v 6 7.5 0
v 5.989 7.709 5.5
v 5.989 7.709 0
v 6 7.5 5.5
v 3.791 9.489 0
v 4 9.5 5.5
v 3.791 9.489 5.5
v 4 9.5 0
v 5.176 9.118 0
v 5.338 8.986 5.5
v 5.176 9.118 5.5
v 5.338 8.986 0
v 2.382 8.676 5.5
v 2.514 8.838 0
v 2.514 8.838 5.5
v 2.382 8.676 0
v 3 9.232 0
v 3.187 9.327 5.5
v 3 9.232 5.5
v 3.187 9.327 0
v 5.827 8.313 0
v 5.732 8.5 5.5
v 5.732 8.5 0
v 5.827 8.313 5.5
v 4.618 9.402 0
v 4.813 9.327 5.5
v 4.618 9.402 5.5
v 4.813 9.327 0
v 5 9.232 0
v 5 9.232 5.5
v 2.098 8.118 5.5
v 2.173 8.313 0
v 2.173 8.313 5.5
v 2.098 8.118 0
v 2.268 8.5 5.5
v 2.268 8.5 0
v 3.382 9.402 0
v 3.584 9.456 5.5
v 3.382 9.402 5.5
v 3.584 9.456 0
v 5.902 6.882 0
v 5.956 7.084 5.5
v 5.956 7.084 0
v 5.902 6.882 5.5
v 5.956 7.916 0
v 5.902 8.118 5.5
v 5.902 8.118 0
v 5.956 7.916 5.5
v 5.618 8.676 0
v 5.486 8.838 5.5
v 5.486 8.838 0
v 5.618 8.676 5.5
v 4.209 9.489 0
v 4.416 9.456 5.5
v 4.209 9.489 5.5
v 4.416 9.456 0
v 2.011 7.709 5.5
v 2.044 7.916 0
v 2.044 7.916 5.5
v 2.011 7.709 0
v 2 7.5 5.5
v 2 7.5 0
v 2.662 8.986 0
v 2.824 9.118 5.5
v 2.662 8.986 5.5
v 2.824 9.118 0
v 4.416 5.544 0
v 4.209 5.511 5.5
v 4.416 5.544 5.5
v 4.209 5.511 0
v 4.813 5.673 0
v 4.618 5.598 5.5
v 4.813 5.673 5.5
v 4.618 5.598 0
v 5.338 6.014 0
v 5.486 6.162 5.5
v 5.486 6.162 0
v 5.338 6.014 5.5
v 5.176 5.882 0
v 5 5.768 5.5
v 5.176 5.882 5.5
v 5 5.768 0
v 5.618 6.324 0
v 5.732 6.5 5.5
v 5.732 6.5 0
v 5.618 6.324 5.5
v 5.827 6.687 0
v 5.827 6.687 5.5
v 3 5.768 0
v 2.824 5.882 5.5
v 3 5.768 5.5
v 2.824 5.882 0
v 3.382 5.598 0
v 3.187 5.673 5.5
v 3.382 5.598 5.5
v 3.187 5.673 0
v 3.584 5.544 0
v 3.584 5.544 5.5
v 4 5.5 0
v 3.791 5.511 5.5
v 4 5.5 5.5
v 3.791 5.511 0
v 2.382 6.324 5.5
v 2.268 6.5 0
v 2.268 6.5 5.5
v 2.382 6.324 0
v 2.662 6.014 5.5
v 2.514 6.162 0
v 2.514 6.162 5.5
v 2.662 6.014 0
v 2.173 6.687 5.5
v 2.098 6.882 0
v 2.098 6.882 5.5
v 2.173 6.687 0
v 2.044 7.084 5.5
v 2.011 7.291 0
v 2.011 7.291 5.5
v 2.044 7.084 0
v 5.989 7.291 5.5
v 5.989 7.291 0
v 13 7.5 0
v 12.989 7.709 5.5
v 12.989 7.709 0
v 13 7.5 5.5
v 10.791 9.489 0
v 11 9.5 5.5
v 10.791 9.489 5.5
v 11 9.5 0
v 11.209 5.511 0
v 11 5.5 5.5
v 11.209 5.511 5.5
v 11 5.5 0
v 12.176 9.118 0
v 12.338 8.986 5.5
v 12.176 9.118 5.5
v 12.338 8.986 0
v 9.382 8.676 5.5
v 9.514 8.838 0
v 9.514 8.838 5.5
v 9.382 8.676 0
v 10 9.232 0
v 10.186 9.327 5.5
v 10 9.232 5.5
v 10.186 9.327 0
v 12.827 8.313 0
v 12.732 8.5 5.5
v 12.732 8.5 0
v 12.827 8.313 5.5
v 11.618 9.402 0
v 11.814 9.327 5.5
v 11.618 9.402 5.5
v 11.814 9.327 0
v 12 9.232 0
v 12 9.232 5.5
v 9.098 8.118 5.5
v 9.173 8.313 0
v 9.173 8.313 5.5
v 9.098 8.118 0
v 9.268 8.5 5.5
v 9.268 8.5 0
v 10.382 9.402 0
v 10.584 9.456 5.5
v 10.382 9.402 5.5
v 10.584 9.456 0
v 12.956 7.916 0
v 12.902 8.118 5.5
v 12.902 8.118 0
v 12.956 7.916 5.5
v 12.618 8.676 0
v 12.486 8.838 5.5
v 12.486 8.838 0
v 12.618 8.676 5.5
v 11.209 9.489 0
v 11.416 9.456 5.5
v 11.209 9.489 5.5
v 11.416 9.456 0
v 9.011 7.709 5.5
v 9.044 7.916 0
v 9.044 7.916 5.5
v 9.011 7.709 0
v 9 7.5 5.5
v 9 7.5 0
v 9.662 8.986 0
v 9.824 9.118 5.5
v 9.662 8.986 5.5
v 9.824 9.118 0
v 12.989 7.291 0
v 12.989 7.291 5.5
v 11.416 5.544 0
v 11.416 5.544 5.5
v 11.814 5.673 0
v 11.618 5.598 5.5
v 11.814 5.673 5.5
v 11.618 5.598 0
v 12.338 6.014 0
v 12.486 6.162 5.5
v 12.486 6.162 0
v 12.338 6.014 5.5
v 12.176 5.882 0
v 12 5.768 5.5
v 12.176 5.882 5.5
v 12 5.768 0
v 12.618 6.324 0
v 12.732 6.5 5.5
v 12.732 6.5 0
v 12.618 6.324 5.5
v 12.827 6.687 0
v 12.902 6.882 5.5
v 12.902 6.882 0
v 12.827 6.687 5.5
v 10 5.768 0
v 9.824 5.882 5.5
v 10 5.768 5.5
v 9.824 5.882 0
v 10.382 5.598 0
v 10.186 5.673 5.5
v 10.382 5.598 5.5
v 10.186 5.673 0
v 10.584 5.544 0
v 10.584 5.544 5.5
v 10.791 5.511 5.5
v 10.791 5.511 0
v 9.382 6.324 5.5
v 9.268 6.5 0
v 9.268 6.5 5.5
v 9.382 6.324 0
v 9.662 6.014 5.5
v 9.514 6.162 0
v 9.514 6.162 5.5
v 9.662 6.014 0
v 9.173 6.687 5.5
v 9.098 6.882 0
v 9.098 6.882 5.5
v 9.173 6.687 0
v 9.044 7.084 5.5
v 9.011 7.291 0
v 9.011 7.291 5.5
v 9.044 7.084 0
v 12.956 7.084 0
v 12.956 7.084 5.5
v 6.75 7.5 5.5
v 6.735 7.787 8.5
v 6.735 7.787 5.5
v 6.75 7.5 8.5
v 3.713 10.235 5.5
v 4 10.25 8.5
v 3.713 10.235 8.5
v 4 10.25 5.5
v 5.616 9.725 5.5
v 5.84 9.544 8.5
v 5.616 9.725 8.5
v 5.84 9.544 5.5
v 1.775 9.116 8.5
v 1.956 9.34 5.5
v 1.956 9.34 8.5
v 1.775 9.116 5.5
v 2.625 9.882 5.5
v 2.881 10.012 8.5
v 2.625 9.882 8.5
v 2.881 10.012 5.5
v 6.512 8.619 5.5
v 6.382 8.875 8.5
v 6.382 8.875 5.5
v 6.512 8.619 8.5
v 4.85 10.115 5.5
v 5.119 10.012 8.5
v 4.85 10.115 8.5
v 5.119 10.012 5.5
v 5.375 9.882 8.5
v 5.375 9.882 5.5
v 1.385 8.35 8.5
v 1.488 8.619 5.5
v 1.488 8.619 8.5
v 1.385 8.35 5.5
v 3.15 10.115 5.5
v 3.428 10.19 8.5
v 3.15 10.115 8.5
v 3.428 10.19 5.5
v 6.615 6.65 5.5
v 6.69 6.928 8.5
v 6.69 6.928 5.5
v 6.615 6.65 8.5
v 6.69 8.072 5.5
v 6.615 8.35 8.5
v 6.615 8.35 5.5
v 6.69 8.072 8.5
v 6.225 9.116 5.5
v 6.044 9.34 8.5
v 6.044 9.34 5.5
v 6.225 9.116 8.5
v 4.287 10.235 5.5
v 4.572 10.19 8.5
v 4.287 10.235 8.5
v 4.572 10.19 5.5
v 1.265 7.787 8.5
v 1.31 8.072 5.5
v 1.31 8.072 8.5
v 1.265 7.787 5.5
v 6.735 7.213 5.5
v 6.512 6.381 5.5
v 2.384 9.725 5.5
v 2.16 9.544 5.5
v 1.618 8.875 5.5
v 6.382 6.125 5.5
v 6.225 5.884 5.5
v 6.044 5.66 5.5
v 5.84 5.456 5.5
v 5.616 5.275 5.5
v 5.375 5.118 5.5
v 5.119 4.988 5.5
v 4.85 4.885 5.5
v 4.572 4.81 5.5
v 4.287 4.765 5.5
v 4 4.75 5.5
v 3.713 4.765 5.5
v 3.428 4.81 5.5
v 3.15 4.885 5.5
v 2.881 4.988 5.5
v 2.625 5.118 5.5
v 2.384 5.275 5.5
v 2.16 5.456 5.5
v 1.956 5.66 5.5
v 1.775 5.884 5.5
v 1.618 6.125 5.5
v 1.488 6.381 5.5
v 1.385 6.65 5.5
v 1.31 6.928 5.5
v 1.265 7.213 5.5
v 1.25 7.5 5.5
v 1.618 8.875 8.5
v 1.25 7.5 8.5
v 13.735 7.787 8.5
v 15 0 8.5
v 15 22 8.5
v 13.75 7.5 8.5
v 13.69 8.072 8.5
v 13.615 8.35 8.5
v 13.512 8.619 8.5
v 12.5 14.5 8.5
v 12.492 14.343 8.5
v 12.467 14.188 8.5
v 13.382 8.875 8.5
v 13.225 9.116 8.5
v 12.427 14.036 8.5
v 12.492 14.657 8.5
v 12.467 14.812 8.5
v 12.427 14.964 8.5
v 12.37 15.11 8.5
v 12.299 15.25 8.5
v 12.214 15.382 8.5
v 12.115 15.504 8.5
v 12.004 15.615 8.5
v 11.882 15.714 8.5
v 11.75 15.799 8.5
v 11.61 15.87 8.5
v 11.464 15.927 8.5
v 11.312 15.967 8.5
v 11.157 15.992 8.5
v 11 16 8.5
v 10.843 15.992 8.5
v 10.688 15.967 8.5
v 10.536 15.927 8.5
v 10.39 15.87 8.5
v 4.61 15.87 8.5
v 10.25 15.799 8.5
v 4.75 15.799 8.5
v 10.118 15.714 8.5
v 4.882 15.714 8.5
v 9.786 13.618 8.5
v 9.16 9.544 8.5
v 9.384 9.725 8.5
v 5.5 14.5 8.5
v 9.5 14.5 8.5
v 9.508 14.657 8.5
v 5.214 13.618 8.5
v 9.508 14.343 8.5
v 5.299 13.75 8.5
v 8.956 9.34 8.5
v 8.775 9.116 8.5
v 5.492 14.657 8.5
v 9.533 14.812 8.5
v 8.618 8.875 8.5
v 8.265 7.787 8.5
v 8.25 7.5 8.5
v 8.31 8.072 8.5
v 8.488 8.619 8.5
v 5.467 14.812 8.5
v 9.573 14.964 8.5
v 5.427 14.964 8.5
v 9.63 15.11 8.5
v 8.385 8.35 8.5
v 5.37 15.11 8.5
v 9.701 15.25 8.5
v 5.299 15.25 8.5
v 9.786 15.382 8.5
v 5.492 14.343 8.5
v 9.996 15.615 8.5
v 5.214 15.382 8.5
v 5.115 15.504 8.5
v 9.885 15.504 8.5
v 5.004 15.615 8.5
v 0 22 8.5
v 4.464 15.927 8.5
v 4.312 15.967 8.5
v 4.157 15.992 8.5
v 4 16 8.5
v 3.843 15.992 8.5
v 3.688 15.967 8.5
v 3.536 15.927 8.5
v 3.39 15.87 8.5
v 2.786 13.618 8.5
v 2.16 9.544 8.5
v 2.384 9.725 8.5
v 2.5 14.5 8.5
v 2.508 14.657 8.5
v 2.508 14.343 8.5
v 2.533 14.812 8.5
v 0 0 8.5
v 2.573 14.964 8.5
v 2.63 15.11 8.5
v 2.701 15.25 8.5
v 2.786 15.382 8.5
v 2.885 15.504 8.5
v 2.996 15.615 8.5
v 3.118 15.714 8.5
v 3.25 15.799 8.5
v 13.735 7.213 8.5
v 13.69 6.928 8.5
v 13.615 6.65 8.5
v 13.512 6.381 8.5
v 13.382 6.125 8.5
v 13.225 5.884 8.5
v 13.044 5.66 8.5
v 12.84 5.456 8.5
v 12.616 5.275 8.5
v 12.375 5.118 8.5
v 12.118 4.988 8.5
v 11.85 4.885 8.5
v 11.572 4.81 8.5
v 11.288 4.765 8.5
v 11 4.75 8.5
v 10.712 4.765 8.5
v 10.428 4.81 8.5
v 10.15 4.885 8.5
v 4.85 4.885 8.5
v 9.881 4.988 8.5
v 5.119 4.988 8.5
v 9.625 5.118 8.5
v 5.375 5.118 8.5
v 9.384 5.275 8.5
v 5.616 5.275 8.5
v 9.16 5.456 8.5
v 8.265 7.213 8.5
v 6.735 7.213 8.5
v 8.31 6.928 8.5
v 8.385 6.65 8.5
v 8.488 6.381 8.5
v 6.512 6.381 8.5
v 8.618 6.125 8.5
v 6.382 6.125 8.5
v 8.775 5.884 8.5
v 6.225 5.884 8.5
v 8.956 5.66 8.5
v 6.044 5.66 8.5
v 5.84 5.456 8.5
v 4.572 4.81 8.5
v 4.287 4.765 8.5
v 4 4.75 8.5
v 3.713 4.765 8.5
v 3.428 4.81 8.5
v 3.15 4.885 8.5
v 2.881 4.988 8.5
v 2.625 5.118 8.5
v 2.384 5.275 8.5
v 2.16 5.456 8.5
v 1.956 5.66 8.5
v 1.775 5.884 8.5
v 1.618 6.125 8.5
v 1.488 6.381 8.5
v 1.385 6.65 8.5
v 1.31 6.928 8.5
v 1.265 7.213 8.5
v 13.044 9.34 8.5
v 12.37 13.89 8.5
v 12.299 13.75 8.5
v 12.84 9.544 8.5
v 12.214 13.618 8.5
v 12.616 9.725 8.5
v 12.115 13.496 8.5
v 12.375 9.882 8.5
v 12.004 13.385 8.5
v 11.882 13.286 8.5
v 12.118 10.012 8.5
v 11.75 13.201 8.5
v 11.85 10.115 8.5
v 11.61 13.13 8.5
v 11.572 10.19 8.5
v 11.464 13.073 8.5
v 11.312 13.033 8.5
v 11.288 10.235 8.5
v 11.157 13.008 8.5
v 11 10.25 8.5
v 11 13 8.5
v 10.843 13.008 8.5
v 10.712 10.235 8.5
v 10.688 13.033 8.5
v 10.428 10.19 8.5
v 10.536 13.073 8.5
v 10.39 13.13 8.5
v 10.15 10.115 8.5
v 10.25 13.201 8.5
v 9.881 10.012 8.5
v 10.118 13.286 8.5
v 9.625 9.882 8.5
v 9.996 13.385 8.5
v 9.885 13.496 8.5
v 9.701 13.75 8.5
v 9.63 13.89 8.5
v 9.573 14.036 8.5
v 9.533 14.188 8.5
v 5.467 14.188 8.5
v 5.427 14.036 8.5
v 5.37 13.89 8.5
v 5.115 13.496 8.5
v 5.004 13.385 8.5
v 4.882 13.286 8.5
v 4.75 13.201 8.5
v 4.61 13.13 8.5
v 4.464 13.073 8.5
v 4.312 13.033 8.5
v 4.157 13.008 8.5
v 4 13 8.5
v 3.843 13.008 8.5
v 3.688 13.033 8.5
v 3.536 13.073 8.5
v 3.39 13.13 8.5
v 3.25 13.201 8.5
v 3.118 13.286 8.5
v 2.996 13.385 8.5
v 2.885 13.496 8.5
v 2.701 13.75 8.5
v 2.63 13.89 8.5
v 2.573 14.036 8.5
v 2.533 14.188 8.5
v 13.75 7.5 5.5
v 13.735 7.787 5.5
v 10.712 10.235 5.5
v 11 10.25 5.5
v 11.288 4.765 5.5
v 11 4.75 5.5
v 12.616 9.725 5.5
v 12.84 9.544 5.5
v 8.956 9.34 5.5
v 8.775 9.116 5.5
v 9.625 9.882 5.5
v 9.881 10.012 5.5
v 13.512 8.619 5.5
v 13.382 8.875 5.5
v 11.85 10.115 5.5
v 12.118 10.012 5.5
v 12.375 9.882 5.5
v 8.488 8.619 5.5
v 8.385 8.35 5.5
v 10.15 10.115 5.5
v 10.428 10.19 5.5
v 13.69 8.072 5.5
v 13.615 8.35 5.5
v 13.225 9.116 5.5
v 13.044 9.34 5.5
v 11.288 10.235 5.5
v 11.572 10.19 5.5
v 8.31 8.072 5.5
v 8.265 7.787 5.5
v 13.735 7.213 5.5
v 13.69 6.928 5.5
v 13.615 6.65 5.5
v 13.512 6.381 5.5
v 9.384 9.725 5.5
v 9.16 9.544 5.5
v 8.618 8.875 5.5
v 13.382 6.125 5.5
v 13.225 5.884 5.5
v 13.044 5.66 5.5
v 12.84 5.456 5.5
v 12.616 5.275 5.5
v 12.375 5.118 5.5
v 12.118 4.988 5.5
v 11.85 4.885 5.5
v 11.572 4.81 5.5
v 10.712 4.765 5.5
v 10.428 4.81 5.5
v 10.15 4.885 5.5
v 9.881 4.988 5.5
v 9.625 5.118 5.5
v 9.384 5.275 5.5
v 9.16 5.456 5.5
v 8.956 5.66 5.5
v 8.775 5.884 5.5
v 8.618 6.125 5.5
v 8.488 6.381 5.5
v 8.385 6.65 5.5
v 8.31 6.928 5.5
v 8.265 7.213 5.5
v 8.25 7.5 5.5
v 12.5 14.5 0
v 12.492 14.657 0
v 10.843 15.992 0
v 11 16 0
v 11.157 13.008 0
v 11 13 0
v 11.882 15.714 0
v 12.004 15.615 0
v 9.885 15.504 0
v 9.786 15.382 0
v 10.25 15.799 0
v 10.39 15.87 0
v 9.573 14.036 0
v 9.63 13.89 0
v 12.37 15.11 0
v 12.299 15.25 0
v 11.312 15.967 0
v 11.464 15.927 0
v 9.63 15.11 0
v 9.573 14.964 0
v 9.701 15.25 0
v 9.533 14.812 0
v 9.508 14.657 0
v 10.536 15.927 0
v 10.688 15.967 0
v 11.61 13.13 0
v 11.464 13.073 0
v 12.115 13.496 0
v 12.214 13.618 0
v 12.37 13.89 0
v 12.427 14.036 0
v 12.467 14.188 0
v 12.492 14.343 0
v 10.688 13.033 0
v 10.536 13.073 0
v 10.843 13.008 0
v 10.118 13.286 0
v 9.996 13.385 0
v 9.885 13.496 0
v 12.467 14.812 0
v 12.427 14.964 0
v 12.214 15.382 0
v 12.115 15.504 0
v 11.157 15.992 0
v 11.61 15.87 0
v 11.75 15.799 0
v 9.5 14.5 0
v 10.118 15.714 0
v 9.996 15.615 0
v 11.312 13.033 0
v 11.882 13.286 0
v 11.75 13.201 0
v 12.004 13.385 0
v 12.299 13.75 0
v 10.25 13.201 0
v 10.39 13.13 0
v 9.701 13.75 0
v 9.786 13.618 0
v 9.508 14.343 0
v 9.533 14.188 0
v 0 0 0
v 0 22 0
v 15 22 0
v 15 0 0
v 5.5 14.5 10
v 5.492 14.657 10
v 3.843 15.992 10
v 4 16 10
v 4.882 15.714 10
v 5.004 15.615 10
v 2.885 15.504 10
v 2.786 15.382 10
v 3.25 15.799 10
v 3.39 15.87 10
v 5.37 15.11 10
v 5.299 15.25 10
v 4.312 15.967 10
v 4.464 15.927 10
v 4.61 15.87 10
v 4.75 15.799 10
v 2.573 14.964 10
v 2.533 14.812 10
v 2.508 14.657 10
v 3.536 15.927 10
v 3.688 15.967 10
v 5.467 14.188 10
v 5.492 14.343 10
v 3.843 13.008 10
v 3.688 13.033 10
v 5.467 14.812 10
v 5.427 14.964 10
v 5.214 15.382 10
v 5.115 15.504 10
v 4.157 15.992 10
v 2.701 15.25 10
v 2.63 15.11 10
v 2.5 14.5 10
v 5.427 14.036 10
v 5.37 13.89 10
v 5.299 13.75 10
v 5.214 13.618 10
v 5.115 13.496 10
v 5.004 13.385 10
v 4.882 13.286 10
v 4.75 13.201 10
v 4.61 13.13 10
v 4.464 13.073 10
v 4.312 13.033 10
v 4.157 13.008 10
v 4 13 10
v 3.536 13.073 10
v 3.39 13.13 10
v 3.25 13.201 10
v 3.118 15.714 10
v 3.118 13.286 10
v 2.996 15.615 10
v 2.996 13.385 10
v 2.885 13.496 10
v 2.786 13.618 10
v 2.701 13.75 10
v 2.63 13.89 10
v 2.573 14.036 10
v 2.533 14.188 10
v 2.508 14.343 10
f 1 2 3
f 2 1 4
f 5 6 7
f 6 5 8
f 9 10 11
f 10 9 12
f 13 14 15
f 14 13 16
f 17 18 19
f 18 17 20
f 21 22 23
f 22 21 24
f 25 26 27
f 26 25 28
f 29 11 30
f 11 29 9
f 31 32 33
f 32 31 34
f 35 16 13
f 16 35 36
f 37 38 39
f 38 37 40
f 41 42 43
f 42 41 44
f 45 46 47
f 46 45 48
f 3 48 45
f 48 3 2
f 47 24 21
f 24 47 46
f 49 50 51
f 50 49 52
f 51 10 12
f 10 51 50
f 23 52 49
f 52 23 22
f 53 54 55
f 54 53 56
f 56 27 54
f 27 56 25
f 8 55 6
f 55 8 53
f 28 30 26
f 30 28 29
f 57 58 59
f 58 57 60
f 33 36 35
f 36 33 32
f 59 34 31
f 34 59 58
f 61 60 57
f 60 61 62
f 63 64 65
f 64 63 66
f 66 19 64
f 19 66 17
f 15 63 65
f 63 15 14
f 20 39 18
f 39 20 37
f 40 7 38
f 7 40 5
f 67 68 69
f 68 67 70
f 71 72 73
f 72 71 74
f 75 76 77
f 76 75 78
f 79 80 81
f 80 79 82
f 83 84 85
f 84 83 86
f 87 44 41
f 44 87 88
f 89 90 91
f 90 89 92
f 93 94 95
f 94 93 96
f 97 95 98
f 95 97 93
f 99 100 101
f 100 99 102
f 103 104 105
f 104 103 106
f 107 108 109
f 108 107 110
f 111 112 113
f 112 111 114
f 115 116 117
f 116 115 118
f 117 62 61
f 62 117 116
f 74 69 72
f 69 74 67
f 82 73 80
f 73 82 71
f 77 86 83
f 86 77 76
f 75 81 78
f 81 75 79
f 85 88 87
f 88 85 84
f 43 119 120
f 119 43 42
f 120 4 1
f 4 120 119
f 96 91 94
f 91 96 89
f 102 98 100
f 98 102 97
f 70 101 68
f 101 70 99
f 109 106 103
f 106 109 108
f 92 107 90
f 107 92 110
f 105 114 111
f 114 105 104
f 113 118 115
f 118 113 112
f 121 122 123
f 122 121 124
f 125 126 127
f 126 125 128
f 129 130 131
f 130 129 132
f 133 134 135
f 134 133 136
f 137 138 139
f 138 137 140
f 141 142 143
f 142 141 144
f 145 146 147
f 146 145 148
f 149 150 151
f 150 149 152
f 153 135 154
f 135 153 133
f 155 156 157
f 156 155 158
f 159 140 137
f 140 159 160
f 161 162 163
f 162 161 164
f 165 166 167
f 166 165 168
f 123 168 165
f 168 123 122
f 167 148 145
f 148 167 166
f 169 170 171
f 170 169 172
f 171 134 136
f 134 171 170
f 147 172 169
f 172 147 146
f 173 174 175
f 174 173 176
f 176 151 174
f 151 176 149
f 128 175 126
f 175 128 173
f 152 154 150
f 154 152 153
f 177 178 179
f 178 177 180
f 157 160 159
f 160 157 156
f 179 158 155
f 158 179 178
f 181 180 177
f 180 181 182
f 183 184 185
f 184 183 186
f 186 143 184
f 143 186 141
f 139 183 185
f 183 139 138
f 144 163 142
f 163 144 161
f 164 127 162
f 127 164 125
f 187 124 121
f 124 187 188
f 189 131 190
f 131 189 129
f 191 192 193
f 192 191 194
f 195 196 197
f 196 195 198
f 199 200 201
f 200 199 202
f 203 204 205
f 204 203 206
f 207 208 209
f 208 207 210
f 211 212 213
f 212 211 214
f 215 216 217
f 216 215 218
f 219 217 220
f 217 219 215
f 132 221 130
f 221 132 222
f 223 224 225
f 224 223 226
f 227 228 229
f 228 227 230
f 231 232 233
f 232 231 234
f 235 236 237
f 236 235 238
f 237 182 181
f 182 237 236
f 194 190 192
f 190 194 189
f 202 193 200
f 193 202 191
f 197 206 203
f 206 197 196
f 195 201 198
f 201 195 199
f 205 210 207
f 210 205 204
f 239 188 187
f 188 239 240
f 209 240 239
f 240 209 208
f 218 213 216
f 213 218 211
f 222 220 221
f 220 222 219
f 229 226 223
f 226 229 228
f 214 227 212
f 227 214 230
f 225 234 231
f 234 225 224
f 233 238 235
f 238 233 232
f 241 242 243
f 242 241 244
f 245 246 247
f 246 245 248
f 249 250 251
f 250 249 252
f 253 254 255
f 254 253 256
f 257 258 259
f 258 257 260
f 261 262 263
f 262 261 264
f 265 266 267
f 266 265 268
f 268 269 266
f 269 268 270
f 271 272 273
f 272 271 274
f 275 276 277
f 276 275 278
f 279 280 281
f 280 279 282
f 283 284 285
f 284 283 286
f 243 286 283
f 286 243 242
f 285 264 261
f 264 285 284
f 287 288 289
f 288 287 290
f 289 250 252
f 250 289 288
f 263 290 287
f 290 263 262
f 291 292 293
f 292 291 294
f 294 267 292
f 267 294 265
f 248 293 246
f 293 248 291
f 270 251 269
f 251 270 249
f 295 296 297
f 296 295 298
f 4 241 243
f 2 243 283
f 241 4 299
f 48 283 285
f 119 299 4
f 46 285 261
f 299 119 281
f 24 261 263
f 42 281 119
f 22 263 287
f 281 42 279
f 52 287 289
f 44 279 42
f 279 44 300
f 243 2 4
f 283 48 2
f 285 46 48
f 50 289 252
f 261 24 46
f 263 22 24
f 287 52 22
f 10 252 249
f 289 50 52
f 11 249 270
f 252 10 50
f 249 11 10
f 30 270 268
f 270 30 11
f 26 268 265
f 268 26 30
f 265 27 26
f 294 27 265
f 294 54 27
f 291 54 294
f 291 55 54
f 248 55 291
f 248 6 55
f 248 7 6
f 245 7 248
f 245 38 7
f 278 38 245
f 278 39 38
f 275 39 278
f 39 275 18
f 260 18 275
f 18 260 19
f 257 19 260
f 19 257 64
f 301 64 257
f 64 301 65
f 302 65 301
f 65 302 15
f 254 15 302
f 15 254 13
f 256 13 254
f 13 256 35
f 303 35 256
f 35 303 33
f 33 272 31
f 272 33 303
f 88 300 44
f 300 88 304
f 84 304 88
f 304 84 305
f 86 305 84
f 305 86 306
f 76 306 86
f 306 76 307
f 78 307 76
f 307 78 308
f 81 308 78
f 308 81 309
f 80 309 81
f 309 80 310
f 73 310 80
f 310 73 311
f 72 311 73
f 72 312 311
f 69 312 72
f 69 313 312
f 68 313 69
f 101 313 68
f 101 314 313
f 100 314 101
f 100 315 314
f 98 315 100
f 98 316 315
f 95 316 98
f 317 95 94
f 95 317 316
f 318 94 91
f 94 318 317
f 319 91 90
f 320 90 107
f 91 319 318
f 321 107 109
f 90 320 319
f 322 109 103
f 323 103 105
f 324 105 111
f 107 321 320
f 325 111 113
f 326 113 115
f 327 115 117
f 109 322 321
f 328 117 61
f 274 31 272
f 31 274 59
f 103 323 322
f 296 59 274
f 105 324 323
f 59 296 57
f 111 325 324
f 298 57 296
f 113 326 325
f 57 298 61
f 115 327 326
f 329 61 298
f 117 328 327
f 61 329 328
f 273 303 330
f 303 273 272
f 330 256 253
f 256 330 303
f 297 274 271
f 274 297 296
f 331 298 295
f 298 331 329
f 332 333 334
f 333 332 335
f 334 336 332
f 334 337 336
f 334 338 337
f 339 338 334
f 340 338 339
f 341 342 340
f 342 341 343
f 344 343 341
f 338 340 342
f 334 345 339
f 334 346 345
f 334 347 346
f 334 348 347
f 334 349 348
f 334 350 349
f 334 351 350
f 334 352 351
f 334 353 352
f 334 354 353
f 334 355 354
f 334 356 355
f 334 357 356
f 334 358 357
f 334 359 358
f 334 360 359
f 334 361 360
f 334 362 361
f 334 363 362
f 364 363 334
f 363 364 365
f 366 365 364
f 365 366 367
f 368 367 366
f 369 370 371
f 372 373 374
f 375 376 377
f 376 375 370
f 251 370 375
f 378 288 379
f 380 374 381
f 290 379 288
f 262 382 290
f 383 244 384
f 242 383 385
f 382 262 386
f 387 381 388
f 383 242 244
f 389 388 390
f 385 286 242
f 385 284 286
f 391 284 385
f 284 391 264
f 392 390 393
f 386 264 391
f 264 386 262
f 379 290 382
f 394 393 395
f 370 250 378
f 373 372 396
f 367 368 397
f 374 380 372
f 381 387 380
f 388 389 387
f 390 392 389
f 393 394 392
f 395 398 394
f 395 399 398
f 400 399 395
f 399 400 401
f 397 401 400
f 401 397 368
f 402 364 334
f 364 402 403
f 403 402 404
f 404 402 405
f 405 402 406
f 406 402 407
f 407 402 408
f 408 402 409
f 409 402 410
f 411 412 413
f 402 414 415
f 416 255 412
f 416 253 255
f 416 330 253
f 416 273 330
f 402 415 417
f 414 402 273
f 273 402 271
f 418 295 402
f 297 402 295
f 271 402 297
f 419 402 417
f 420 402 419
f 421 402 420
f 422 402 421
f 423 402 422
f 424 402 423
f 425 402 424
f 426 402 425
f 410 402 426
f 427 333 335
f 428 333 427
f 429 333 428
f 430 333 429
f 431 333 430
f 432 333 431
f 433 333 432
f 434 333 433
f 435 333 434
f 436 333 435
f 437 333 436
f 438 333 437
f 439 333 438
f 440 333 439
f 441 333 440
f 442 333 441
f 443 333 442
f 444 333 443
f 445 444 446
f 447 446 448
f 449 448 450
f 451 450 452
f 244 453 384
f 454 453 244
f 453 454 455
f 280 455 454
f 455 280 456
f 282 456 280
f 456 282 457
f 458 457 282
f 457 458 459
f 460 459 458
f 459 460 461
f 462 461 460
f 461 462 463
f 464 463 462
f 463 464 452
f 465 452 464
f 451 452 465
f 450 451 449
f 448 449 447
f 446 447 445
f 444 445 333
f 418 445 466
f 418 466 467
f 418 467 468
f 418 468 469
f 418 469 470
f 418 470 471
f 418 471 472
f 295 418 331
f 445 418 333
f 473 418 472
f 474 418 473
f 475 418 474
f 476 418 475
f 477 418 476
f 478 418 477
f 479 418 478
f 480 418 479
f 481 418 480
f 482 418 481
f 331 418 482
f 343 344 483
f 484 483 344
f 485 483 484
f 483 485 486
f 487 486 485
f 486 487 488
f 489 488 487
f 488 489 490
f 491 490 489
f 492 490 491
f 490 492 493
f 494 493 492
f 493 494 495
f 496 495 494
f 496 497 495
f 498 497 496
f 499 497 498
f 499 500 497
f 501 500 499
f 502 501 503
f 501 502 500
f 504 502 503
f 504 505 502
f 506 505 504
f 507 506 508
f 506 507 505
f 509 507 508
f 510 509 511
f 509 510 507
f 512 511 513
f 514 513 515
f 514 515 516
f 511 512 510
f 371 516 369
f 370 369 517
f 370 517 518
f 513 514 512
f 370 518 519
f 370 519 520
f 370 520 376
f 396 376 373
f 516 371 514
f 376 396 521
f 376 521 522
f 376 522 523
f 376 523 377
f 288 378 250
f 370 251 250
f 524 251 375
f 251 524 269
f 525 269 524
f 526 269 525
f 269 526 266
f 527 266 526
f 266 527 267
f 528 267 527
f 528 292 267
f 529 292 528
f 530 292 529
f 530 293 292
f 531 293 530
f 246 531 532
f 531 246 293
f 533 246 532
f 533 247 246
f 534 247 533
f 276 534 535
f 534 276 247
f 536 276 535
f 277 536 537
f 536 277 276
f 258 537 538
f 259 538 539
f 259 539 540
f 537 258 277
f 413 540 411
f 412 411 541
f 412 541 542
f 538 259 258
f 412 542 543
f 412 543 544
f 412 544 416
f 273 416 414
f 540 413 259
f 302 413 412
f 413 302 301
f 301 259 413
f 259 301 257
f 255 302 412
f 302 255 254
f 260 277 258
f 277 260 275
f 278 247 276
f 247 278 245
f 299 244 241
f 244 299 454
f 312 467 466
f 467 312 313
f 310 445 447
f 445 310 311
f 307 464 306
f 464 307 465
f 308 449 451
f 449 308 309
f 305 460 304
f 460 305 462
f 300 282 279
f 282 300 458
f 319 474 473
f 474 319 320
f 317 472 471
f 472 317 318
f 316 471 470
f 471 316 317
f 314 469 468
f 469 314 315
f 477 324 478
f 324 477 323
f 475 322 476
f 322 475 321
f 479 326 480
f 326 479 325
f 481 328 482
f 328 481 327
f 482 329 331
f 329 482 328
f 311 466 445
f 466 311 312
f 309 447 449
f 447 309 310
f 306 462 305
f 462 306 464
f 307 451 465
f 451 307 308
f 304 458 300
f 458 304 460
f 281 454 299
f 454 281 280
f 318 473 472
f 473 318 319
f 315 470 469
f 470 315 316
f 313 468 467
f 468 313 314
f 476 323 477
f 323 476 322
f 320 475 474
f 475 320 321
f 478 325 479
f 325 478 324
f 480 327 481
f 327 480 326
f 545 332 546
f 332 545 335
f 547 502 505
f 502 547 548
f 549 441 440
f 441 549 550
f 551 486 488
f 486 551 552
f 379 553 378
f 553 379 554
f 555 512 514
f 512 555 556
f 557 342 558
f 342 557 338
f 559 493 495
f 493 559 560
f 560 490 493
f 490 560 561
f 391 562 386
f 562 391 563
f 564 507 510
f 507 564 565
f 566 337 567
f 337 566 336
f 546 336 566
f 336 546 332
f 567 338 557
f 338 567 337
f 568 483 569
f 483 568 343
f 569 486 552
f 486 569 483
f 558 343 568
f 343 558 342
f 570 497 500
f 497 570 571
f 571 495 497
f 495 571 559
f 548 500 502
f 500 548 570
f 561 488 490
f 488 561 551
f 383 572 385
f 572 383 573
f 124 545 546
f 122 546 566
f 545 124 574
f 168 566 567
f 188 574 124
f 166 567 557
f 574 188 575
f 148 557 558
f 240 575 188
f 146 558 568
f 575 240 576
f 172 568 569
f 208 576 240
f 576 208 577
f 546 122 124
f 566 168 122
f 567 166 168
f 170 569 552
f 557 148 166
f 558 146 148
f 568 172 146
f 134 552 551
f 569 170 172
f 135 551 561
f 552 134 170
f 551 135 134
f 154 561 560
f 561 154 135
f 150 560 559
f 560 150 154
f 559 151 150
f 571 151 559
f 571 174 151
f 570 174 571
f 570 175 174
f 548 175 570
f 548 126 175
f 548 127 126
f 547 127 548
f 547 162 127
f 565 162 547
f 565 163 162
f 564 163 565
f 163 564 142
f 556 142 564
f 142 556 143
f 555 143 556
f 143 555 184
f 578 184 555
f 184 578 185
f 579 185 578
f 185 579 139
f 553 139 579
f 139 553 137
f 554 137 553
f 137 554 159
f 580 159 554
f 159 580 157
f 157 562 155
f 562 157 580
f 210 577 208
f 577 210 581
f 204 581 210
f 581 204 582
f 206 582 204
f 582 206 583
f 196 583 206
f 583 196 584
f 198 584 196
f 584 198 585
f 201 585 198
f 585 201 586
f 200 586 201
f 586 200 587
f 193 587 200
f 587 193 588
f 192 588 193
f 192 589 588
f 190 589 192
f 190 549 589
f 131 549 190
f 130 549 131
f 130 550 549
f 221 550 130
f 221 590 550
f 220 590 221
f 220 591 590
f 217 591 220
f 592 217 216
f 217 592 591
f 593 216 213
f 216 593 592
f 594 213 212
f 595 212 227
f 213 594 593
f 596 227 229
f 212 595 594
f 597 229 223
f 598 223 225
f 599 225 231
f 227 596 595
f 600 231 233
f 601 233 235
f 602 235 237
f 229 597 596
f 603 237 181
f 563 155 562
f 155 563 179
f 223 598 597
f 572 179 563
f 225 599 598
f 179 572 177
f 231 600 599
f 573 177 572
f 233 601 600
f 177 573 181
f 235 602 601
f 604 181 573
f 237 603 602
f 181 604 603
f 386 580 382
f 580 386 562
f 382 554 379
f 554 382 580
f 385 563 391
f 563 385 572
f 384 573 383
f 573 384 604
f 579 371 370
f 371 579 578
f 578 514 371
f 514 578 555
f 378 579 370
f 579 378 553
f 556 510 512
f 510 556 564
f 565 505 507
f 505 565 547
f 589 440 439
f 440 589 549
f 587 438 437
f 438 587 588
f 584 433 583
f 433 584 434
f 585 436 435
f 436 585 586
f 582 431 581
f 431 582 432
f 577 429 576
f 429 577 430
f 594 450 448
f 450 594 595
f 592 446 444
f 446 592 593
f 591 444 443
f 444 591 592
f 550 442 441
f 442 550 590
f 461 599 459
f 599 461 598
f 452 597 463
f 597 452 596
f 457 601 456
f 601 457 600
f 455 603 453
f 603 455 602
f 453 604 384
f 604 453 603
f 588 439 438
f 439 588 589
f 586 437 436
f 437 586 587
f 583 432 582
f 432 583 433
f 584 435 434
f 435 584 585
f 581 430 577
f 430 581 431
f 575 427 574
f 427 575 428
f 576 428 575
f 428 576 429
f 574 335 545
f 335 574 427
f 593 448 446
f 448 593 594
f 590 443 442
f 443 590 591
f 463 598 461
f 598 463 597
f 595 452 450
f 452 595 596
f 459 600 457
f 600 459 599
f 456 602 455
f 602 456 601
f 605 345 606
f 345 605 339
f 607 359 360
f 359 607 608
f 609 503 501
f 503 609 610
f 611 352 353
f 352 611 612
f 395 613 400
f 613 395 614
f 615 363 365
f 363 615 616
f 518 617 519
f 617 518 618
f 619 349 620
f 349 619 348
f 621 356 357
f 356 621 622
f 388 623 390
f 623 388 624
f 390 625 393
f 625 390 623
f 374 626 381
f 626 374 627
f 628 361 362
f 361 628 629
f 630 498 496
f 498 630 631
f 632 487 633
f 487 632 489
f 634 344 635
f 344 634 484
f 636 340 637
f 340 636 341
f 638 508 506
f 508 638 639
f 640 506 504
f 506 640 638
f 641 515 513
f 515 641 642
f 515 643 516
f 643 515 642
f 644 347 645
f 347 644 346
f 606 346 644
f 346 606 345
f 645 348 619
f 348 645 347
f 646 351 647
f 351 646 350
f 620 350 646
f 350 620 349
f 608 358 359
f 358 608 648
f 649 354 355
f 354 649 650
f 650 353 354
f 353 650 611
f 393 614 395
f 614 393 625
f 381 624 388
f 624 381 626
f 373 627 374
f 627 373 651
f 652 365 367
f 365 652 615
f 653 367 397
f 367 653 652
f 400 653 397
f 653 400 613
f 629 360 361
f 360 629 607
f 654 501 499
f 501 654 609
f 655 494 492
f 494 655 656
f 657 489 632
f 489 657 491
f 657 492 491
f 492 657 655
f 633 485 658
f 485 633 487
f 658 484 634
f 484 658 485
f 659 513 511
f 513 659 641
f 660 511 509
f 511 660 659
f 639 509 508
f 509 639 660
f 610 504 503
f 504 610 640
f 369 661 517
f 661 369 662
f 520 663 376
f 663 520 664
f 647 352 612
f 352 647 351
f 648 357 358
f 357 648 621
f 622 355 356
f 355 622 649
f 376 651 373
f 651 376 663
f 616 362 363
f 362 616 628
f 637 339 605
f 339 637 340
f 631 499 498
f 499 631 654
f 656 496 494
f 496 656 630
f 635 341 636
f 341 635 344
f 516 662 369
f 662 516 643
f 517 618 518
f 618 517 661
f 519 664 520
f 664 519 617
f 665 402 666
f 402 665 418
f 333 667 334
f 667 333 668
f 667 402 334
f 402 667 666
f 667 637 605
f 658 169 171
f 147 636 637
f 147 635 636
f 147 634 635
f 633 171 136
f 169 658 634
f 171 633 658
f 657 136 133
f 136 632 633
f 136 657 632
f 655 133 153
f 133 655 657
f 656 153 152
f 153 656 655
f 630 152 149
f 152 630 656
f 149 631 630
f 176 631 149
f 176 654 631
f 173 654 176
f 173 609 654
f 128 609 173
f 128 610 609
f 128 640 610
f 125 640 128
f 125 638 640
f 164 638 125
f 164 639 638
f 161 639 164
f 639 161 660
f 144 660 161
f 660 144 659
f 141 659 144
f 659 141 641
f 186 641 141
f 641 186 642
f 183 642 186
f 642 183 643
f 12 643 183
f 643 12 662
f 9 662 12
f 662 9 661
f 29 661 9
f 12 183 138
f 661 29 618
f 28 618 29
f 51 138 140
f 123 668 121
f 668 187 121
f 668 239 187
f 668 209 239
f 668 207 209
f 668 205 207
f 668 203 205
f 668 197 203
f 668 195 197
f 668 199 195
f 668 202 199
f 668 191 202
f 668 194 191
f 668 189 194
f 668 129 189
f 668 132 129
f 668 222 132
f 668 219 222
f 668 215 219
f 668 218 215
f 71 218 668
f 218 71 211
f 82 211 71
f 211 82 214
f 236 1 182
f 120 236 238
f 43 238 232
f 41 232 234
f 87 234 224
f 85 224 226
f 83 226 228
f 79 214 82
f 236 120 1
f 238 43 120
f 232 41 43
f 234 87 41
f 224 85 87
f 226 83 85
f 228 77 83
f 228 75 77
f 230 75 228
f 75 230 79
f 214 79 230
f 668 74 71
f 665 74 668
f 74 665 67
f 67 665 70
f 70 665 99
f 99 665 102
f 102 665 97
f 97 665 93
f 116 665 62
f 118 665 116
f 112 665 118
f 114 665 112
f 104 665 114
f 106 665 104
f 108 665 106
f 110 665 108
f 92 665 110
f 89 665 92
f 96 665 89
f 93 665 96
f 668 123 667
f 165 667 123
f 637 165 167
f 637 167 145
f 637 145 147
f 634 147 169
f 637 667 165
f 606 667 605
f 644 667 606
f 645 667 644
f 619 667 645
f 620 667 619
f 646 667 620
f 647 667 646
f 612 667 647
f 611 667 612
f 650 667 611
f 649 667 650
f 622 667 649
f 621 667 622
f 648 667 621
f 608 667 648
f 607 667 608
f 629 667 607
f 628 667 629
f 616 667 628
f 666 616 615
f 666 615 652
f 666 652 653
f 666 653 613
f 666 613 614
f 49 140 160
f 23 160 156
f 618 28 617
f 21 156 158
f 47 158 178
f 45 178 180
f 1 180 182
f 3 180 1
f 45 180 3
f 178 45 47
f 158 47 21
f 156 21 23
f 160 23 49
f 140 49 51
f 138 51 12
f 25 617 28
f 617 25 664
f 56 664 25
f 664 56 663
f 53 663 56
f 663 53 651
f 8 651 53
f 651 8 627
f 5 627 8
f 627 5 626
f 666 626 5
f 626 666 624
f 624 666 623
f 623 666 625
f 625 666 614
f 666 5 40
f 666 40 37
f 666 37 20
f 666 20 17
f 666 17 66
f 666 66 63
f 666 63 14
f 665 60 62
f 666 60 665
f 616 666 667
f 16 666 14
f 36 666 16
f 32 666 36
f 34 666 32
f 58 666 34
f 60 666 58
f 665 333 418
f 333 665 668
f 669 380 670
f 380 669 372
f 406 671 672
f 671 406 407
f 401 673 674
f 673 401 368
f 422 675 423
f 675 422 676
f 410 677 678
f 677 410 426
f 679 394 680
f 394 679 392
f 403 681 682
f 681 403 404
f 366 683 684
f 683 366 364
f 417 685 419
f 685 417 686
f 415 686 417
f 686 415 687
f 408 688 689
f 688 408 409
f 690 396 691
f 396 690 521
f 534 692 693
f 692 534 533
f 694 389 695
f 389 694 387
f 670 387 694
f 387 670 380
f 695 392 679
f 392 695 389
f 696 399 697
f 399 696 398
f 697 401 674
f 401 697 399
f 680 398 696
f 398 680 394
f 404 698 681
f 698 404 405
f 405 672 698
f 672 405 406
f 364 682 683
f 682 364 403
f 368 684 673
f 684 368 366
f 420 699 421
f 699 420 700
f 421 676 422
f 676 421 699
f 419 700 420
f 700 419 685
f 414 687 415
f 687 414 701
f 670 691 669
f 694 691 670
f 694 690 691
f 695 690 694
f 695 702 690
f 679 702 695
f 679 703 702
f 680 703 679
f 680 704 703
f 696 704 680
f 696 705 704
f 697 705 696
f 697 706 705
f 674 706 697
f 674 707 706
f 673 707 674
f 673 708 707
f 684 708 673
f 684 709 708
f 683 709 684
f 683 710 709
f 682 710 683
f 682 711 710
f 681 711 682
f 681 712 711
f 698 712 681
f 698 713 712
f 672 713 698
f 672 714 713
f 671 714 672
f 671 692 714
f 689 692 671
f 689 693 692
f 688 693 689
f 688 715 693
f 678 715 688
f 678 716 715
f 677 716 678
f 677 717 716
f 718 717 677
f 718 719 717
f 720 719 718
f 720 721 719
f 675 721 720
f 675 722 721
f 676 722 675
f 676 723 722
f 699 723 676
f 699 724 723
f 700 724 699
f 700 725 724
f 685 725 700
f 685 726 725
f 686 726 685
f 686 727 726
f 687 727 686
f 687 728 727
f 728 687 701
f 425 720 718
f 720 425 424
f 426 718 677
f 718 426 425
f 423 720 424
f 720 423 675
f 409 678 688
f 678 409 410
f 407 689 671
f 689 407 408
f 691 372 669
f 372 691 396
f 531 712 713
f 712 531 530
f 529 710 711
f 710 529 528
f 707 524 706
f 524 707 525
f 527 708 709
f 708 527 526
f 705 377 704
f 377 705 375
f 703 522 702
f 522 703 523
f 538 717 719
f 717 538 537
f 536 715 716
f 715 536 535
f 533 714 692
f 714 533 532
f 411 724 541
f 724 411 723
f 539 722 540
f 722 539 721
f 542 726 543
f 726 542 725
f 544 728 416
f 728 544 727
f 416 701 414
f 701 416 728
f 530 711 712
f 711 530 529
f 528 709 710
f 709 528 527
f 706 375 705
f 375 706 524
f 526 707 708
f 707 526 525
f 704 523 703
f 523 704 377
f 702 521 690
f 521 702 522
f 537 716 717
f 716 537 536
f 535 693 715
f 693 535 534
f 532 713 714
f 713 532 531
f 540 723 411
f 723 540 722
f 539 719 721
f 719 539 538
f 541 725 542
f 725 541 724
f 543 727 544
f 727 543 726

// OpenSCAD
d = 4;
h=8.5;
b=22;
l=15;
cc=7;
OF = 7;
FNN = 60;
    union() {
difference() {
    cube([l,b,h],center=false);
        union() {
            translate([4,7.5,0]) cylinder(h=40, r=d/2, $fn=FNN, center=true);
            translate([4+cc,7.5,0]) cylinder(h=40, r=d/2, $fn=FNN, center=true);

            translate([4,7.5,h-1.5]) cylinder(h=3, r=5.5/2, $fn=FNN, center=true);
            translate([4+cc,7.5,h-1.5]) cylinder(h=3, r=5.5/2, $fn=FNN, center=true);        

         
            translate([4+cc,7.5+OF,0]) cylinder(h=40, r=3/2, $fn=FNN, center=true);
        }
    }
    translate([4,7.5+OF,h+0.5]) cylinder(h=2, r=3/2, $fn=FNN, center=true);
}
